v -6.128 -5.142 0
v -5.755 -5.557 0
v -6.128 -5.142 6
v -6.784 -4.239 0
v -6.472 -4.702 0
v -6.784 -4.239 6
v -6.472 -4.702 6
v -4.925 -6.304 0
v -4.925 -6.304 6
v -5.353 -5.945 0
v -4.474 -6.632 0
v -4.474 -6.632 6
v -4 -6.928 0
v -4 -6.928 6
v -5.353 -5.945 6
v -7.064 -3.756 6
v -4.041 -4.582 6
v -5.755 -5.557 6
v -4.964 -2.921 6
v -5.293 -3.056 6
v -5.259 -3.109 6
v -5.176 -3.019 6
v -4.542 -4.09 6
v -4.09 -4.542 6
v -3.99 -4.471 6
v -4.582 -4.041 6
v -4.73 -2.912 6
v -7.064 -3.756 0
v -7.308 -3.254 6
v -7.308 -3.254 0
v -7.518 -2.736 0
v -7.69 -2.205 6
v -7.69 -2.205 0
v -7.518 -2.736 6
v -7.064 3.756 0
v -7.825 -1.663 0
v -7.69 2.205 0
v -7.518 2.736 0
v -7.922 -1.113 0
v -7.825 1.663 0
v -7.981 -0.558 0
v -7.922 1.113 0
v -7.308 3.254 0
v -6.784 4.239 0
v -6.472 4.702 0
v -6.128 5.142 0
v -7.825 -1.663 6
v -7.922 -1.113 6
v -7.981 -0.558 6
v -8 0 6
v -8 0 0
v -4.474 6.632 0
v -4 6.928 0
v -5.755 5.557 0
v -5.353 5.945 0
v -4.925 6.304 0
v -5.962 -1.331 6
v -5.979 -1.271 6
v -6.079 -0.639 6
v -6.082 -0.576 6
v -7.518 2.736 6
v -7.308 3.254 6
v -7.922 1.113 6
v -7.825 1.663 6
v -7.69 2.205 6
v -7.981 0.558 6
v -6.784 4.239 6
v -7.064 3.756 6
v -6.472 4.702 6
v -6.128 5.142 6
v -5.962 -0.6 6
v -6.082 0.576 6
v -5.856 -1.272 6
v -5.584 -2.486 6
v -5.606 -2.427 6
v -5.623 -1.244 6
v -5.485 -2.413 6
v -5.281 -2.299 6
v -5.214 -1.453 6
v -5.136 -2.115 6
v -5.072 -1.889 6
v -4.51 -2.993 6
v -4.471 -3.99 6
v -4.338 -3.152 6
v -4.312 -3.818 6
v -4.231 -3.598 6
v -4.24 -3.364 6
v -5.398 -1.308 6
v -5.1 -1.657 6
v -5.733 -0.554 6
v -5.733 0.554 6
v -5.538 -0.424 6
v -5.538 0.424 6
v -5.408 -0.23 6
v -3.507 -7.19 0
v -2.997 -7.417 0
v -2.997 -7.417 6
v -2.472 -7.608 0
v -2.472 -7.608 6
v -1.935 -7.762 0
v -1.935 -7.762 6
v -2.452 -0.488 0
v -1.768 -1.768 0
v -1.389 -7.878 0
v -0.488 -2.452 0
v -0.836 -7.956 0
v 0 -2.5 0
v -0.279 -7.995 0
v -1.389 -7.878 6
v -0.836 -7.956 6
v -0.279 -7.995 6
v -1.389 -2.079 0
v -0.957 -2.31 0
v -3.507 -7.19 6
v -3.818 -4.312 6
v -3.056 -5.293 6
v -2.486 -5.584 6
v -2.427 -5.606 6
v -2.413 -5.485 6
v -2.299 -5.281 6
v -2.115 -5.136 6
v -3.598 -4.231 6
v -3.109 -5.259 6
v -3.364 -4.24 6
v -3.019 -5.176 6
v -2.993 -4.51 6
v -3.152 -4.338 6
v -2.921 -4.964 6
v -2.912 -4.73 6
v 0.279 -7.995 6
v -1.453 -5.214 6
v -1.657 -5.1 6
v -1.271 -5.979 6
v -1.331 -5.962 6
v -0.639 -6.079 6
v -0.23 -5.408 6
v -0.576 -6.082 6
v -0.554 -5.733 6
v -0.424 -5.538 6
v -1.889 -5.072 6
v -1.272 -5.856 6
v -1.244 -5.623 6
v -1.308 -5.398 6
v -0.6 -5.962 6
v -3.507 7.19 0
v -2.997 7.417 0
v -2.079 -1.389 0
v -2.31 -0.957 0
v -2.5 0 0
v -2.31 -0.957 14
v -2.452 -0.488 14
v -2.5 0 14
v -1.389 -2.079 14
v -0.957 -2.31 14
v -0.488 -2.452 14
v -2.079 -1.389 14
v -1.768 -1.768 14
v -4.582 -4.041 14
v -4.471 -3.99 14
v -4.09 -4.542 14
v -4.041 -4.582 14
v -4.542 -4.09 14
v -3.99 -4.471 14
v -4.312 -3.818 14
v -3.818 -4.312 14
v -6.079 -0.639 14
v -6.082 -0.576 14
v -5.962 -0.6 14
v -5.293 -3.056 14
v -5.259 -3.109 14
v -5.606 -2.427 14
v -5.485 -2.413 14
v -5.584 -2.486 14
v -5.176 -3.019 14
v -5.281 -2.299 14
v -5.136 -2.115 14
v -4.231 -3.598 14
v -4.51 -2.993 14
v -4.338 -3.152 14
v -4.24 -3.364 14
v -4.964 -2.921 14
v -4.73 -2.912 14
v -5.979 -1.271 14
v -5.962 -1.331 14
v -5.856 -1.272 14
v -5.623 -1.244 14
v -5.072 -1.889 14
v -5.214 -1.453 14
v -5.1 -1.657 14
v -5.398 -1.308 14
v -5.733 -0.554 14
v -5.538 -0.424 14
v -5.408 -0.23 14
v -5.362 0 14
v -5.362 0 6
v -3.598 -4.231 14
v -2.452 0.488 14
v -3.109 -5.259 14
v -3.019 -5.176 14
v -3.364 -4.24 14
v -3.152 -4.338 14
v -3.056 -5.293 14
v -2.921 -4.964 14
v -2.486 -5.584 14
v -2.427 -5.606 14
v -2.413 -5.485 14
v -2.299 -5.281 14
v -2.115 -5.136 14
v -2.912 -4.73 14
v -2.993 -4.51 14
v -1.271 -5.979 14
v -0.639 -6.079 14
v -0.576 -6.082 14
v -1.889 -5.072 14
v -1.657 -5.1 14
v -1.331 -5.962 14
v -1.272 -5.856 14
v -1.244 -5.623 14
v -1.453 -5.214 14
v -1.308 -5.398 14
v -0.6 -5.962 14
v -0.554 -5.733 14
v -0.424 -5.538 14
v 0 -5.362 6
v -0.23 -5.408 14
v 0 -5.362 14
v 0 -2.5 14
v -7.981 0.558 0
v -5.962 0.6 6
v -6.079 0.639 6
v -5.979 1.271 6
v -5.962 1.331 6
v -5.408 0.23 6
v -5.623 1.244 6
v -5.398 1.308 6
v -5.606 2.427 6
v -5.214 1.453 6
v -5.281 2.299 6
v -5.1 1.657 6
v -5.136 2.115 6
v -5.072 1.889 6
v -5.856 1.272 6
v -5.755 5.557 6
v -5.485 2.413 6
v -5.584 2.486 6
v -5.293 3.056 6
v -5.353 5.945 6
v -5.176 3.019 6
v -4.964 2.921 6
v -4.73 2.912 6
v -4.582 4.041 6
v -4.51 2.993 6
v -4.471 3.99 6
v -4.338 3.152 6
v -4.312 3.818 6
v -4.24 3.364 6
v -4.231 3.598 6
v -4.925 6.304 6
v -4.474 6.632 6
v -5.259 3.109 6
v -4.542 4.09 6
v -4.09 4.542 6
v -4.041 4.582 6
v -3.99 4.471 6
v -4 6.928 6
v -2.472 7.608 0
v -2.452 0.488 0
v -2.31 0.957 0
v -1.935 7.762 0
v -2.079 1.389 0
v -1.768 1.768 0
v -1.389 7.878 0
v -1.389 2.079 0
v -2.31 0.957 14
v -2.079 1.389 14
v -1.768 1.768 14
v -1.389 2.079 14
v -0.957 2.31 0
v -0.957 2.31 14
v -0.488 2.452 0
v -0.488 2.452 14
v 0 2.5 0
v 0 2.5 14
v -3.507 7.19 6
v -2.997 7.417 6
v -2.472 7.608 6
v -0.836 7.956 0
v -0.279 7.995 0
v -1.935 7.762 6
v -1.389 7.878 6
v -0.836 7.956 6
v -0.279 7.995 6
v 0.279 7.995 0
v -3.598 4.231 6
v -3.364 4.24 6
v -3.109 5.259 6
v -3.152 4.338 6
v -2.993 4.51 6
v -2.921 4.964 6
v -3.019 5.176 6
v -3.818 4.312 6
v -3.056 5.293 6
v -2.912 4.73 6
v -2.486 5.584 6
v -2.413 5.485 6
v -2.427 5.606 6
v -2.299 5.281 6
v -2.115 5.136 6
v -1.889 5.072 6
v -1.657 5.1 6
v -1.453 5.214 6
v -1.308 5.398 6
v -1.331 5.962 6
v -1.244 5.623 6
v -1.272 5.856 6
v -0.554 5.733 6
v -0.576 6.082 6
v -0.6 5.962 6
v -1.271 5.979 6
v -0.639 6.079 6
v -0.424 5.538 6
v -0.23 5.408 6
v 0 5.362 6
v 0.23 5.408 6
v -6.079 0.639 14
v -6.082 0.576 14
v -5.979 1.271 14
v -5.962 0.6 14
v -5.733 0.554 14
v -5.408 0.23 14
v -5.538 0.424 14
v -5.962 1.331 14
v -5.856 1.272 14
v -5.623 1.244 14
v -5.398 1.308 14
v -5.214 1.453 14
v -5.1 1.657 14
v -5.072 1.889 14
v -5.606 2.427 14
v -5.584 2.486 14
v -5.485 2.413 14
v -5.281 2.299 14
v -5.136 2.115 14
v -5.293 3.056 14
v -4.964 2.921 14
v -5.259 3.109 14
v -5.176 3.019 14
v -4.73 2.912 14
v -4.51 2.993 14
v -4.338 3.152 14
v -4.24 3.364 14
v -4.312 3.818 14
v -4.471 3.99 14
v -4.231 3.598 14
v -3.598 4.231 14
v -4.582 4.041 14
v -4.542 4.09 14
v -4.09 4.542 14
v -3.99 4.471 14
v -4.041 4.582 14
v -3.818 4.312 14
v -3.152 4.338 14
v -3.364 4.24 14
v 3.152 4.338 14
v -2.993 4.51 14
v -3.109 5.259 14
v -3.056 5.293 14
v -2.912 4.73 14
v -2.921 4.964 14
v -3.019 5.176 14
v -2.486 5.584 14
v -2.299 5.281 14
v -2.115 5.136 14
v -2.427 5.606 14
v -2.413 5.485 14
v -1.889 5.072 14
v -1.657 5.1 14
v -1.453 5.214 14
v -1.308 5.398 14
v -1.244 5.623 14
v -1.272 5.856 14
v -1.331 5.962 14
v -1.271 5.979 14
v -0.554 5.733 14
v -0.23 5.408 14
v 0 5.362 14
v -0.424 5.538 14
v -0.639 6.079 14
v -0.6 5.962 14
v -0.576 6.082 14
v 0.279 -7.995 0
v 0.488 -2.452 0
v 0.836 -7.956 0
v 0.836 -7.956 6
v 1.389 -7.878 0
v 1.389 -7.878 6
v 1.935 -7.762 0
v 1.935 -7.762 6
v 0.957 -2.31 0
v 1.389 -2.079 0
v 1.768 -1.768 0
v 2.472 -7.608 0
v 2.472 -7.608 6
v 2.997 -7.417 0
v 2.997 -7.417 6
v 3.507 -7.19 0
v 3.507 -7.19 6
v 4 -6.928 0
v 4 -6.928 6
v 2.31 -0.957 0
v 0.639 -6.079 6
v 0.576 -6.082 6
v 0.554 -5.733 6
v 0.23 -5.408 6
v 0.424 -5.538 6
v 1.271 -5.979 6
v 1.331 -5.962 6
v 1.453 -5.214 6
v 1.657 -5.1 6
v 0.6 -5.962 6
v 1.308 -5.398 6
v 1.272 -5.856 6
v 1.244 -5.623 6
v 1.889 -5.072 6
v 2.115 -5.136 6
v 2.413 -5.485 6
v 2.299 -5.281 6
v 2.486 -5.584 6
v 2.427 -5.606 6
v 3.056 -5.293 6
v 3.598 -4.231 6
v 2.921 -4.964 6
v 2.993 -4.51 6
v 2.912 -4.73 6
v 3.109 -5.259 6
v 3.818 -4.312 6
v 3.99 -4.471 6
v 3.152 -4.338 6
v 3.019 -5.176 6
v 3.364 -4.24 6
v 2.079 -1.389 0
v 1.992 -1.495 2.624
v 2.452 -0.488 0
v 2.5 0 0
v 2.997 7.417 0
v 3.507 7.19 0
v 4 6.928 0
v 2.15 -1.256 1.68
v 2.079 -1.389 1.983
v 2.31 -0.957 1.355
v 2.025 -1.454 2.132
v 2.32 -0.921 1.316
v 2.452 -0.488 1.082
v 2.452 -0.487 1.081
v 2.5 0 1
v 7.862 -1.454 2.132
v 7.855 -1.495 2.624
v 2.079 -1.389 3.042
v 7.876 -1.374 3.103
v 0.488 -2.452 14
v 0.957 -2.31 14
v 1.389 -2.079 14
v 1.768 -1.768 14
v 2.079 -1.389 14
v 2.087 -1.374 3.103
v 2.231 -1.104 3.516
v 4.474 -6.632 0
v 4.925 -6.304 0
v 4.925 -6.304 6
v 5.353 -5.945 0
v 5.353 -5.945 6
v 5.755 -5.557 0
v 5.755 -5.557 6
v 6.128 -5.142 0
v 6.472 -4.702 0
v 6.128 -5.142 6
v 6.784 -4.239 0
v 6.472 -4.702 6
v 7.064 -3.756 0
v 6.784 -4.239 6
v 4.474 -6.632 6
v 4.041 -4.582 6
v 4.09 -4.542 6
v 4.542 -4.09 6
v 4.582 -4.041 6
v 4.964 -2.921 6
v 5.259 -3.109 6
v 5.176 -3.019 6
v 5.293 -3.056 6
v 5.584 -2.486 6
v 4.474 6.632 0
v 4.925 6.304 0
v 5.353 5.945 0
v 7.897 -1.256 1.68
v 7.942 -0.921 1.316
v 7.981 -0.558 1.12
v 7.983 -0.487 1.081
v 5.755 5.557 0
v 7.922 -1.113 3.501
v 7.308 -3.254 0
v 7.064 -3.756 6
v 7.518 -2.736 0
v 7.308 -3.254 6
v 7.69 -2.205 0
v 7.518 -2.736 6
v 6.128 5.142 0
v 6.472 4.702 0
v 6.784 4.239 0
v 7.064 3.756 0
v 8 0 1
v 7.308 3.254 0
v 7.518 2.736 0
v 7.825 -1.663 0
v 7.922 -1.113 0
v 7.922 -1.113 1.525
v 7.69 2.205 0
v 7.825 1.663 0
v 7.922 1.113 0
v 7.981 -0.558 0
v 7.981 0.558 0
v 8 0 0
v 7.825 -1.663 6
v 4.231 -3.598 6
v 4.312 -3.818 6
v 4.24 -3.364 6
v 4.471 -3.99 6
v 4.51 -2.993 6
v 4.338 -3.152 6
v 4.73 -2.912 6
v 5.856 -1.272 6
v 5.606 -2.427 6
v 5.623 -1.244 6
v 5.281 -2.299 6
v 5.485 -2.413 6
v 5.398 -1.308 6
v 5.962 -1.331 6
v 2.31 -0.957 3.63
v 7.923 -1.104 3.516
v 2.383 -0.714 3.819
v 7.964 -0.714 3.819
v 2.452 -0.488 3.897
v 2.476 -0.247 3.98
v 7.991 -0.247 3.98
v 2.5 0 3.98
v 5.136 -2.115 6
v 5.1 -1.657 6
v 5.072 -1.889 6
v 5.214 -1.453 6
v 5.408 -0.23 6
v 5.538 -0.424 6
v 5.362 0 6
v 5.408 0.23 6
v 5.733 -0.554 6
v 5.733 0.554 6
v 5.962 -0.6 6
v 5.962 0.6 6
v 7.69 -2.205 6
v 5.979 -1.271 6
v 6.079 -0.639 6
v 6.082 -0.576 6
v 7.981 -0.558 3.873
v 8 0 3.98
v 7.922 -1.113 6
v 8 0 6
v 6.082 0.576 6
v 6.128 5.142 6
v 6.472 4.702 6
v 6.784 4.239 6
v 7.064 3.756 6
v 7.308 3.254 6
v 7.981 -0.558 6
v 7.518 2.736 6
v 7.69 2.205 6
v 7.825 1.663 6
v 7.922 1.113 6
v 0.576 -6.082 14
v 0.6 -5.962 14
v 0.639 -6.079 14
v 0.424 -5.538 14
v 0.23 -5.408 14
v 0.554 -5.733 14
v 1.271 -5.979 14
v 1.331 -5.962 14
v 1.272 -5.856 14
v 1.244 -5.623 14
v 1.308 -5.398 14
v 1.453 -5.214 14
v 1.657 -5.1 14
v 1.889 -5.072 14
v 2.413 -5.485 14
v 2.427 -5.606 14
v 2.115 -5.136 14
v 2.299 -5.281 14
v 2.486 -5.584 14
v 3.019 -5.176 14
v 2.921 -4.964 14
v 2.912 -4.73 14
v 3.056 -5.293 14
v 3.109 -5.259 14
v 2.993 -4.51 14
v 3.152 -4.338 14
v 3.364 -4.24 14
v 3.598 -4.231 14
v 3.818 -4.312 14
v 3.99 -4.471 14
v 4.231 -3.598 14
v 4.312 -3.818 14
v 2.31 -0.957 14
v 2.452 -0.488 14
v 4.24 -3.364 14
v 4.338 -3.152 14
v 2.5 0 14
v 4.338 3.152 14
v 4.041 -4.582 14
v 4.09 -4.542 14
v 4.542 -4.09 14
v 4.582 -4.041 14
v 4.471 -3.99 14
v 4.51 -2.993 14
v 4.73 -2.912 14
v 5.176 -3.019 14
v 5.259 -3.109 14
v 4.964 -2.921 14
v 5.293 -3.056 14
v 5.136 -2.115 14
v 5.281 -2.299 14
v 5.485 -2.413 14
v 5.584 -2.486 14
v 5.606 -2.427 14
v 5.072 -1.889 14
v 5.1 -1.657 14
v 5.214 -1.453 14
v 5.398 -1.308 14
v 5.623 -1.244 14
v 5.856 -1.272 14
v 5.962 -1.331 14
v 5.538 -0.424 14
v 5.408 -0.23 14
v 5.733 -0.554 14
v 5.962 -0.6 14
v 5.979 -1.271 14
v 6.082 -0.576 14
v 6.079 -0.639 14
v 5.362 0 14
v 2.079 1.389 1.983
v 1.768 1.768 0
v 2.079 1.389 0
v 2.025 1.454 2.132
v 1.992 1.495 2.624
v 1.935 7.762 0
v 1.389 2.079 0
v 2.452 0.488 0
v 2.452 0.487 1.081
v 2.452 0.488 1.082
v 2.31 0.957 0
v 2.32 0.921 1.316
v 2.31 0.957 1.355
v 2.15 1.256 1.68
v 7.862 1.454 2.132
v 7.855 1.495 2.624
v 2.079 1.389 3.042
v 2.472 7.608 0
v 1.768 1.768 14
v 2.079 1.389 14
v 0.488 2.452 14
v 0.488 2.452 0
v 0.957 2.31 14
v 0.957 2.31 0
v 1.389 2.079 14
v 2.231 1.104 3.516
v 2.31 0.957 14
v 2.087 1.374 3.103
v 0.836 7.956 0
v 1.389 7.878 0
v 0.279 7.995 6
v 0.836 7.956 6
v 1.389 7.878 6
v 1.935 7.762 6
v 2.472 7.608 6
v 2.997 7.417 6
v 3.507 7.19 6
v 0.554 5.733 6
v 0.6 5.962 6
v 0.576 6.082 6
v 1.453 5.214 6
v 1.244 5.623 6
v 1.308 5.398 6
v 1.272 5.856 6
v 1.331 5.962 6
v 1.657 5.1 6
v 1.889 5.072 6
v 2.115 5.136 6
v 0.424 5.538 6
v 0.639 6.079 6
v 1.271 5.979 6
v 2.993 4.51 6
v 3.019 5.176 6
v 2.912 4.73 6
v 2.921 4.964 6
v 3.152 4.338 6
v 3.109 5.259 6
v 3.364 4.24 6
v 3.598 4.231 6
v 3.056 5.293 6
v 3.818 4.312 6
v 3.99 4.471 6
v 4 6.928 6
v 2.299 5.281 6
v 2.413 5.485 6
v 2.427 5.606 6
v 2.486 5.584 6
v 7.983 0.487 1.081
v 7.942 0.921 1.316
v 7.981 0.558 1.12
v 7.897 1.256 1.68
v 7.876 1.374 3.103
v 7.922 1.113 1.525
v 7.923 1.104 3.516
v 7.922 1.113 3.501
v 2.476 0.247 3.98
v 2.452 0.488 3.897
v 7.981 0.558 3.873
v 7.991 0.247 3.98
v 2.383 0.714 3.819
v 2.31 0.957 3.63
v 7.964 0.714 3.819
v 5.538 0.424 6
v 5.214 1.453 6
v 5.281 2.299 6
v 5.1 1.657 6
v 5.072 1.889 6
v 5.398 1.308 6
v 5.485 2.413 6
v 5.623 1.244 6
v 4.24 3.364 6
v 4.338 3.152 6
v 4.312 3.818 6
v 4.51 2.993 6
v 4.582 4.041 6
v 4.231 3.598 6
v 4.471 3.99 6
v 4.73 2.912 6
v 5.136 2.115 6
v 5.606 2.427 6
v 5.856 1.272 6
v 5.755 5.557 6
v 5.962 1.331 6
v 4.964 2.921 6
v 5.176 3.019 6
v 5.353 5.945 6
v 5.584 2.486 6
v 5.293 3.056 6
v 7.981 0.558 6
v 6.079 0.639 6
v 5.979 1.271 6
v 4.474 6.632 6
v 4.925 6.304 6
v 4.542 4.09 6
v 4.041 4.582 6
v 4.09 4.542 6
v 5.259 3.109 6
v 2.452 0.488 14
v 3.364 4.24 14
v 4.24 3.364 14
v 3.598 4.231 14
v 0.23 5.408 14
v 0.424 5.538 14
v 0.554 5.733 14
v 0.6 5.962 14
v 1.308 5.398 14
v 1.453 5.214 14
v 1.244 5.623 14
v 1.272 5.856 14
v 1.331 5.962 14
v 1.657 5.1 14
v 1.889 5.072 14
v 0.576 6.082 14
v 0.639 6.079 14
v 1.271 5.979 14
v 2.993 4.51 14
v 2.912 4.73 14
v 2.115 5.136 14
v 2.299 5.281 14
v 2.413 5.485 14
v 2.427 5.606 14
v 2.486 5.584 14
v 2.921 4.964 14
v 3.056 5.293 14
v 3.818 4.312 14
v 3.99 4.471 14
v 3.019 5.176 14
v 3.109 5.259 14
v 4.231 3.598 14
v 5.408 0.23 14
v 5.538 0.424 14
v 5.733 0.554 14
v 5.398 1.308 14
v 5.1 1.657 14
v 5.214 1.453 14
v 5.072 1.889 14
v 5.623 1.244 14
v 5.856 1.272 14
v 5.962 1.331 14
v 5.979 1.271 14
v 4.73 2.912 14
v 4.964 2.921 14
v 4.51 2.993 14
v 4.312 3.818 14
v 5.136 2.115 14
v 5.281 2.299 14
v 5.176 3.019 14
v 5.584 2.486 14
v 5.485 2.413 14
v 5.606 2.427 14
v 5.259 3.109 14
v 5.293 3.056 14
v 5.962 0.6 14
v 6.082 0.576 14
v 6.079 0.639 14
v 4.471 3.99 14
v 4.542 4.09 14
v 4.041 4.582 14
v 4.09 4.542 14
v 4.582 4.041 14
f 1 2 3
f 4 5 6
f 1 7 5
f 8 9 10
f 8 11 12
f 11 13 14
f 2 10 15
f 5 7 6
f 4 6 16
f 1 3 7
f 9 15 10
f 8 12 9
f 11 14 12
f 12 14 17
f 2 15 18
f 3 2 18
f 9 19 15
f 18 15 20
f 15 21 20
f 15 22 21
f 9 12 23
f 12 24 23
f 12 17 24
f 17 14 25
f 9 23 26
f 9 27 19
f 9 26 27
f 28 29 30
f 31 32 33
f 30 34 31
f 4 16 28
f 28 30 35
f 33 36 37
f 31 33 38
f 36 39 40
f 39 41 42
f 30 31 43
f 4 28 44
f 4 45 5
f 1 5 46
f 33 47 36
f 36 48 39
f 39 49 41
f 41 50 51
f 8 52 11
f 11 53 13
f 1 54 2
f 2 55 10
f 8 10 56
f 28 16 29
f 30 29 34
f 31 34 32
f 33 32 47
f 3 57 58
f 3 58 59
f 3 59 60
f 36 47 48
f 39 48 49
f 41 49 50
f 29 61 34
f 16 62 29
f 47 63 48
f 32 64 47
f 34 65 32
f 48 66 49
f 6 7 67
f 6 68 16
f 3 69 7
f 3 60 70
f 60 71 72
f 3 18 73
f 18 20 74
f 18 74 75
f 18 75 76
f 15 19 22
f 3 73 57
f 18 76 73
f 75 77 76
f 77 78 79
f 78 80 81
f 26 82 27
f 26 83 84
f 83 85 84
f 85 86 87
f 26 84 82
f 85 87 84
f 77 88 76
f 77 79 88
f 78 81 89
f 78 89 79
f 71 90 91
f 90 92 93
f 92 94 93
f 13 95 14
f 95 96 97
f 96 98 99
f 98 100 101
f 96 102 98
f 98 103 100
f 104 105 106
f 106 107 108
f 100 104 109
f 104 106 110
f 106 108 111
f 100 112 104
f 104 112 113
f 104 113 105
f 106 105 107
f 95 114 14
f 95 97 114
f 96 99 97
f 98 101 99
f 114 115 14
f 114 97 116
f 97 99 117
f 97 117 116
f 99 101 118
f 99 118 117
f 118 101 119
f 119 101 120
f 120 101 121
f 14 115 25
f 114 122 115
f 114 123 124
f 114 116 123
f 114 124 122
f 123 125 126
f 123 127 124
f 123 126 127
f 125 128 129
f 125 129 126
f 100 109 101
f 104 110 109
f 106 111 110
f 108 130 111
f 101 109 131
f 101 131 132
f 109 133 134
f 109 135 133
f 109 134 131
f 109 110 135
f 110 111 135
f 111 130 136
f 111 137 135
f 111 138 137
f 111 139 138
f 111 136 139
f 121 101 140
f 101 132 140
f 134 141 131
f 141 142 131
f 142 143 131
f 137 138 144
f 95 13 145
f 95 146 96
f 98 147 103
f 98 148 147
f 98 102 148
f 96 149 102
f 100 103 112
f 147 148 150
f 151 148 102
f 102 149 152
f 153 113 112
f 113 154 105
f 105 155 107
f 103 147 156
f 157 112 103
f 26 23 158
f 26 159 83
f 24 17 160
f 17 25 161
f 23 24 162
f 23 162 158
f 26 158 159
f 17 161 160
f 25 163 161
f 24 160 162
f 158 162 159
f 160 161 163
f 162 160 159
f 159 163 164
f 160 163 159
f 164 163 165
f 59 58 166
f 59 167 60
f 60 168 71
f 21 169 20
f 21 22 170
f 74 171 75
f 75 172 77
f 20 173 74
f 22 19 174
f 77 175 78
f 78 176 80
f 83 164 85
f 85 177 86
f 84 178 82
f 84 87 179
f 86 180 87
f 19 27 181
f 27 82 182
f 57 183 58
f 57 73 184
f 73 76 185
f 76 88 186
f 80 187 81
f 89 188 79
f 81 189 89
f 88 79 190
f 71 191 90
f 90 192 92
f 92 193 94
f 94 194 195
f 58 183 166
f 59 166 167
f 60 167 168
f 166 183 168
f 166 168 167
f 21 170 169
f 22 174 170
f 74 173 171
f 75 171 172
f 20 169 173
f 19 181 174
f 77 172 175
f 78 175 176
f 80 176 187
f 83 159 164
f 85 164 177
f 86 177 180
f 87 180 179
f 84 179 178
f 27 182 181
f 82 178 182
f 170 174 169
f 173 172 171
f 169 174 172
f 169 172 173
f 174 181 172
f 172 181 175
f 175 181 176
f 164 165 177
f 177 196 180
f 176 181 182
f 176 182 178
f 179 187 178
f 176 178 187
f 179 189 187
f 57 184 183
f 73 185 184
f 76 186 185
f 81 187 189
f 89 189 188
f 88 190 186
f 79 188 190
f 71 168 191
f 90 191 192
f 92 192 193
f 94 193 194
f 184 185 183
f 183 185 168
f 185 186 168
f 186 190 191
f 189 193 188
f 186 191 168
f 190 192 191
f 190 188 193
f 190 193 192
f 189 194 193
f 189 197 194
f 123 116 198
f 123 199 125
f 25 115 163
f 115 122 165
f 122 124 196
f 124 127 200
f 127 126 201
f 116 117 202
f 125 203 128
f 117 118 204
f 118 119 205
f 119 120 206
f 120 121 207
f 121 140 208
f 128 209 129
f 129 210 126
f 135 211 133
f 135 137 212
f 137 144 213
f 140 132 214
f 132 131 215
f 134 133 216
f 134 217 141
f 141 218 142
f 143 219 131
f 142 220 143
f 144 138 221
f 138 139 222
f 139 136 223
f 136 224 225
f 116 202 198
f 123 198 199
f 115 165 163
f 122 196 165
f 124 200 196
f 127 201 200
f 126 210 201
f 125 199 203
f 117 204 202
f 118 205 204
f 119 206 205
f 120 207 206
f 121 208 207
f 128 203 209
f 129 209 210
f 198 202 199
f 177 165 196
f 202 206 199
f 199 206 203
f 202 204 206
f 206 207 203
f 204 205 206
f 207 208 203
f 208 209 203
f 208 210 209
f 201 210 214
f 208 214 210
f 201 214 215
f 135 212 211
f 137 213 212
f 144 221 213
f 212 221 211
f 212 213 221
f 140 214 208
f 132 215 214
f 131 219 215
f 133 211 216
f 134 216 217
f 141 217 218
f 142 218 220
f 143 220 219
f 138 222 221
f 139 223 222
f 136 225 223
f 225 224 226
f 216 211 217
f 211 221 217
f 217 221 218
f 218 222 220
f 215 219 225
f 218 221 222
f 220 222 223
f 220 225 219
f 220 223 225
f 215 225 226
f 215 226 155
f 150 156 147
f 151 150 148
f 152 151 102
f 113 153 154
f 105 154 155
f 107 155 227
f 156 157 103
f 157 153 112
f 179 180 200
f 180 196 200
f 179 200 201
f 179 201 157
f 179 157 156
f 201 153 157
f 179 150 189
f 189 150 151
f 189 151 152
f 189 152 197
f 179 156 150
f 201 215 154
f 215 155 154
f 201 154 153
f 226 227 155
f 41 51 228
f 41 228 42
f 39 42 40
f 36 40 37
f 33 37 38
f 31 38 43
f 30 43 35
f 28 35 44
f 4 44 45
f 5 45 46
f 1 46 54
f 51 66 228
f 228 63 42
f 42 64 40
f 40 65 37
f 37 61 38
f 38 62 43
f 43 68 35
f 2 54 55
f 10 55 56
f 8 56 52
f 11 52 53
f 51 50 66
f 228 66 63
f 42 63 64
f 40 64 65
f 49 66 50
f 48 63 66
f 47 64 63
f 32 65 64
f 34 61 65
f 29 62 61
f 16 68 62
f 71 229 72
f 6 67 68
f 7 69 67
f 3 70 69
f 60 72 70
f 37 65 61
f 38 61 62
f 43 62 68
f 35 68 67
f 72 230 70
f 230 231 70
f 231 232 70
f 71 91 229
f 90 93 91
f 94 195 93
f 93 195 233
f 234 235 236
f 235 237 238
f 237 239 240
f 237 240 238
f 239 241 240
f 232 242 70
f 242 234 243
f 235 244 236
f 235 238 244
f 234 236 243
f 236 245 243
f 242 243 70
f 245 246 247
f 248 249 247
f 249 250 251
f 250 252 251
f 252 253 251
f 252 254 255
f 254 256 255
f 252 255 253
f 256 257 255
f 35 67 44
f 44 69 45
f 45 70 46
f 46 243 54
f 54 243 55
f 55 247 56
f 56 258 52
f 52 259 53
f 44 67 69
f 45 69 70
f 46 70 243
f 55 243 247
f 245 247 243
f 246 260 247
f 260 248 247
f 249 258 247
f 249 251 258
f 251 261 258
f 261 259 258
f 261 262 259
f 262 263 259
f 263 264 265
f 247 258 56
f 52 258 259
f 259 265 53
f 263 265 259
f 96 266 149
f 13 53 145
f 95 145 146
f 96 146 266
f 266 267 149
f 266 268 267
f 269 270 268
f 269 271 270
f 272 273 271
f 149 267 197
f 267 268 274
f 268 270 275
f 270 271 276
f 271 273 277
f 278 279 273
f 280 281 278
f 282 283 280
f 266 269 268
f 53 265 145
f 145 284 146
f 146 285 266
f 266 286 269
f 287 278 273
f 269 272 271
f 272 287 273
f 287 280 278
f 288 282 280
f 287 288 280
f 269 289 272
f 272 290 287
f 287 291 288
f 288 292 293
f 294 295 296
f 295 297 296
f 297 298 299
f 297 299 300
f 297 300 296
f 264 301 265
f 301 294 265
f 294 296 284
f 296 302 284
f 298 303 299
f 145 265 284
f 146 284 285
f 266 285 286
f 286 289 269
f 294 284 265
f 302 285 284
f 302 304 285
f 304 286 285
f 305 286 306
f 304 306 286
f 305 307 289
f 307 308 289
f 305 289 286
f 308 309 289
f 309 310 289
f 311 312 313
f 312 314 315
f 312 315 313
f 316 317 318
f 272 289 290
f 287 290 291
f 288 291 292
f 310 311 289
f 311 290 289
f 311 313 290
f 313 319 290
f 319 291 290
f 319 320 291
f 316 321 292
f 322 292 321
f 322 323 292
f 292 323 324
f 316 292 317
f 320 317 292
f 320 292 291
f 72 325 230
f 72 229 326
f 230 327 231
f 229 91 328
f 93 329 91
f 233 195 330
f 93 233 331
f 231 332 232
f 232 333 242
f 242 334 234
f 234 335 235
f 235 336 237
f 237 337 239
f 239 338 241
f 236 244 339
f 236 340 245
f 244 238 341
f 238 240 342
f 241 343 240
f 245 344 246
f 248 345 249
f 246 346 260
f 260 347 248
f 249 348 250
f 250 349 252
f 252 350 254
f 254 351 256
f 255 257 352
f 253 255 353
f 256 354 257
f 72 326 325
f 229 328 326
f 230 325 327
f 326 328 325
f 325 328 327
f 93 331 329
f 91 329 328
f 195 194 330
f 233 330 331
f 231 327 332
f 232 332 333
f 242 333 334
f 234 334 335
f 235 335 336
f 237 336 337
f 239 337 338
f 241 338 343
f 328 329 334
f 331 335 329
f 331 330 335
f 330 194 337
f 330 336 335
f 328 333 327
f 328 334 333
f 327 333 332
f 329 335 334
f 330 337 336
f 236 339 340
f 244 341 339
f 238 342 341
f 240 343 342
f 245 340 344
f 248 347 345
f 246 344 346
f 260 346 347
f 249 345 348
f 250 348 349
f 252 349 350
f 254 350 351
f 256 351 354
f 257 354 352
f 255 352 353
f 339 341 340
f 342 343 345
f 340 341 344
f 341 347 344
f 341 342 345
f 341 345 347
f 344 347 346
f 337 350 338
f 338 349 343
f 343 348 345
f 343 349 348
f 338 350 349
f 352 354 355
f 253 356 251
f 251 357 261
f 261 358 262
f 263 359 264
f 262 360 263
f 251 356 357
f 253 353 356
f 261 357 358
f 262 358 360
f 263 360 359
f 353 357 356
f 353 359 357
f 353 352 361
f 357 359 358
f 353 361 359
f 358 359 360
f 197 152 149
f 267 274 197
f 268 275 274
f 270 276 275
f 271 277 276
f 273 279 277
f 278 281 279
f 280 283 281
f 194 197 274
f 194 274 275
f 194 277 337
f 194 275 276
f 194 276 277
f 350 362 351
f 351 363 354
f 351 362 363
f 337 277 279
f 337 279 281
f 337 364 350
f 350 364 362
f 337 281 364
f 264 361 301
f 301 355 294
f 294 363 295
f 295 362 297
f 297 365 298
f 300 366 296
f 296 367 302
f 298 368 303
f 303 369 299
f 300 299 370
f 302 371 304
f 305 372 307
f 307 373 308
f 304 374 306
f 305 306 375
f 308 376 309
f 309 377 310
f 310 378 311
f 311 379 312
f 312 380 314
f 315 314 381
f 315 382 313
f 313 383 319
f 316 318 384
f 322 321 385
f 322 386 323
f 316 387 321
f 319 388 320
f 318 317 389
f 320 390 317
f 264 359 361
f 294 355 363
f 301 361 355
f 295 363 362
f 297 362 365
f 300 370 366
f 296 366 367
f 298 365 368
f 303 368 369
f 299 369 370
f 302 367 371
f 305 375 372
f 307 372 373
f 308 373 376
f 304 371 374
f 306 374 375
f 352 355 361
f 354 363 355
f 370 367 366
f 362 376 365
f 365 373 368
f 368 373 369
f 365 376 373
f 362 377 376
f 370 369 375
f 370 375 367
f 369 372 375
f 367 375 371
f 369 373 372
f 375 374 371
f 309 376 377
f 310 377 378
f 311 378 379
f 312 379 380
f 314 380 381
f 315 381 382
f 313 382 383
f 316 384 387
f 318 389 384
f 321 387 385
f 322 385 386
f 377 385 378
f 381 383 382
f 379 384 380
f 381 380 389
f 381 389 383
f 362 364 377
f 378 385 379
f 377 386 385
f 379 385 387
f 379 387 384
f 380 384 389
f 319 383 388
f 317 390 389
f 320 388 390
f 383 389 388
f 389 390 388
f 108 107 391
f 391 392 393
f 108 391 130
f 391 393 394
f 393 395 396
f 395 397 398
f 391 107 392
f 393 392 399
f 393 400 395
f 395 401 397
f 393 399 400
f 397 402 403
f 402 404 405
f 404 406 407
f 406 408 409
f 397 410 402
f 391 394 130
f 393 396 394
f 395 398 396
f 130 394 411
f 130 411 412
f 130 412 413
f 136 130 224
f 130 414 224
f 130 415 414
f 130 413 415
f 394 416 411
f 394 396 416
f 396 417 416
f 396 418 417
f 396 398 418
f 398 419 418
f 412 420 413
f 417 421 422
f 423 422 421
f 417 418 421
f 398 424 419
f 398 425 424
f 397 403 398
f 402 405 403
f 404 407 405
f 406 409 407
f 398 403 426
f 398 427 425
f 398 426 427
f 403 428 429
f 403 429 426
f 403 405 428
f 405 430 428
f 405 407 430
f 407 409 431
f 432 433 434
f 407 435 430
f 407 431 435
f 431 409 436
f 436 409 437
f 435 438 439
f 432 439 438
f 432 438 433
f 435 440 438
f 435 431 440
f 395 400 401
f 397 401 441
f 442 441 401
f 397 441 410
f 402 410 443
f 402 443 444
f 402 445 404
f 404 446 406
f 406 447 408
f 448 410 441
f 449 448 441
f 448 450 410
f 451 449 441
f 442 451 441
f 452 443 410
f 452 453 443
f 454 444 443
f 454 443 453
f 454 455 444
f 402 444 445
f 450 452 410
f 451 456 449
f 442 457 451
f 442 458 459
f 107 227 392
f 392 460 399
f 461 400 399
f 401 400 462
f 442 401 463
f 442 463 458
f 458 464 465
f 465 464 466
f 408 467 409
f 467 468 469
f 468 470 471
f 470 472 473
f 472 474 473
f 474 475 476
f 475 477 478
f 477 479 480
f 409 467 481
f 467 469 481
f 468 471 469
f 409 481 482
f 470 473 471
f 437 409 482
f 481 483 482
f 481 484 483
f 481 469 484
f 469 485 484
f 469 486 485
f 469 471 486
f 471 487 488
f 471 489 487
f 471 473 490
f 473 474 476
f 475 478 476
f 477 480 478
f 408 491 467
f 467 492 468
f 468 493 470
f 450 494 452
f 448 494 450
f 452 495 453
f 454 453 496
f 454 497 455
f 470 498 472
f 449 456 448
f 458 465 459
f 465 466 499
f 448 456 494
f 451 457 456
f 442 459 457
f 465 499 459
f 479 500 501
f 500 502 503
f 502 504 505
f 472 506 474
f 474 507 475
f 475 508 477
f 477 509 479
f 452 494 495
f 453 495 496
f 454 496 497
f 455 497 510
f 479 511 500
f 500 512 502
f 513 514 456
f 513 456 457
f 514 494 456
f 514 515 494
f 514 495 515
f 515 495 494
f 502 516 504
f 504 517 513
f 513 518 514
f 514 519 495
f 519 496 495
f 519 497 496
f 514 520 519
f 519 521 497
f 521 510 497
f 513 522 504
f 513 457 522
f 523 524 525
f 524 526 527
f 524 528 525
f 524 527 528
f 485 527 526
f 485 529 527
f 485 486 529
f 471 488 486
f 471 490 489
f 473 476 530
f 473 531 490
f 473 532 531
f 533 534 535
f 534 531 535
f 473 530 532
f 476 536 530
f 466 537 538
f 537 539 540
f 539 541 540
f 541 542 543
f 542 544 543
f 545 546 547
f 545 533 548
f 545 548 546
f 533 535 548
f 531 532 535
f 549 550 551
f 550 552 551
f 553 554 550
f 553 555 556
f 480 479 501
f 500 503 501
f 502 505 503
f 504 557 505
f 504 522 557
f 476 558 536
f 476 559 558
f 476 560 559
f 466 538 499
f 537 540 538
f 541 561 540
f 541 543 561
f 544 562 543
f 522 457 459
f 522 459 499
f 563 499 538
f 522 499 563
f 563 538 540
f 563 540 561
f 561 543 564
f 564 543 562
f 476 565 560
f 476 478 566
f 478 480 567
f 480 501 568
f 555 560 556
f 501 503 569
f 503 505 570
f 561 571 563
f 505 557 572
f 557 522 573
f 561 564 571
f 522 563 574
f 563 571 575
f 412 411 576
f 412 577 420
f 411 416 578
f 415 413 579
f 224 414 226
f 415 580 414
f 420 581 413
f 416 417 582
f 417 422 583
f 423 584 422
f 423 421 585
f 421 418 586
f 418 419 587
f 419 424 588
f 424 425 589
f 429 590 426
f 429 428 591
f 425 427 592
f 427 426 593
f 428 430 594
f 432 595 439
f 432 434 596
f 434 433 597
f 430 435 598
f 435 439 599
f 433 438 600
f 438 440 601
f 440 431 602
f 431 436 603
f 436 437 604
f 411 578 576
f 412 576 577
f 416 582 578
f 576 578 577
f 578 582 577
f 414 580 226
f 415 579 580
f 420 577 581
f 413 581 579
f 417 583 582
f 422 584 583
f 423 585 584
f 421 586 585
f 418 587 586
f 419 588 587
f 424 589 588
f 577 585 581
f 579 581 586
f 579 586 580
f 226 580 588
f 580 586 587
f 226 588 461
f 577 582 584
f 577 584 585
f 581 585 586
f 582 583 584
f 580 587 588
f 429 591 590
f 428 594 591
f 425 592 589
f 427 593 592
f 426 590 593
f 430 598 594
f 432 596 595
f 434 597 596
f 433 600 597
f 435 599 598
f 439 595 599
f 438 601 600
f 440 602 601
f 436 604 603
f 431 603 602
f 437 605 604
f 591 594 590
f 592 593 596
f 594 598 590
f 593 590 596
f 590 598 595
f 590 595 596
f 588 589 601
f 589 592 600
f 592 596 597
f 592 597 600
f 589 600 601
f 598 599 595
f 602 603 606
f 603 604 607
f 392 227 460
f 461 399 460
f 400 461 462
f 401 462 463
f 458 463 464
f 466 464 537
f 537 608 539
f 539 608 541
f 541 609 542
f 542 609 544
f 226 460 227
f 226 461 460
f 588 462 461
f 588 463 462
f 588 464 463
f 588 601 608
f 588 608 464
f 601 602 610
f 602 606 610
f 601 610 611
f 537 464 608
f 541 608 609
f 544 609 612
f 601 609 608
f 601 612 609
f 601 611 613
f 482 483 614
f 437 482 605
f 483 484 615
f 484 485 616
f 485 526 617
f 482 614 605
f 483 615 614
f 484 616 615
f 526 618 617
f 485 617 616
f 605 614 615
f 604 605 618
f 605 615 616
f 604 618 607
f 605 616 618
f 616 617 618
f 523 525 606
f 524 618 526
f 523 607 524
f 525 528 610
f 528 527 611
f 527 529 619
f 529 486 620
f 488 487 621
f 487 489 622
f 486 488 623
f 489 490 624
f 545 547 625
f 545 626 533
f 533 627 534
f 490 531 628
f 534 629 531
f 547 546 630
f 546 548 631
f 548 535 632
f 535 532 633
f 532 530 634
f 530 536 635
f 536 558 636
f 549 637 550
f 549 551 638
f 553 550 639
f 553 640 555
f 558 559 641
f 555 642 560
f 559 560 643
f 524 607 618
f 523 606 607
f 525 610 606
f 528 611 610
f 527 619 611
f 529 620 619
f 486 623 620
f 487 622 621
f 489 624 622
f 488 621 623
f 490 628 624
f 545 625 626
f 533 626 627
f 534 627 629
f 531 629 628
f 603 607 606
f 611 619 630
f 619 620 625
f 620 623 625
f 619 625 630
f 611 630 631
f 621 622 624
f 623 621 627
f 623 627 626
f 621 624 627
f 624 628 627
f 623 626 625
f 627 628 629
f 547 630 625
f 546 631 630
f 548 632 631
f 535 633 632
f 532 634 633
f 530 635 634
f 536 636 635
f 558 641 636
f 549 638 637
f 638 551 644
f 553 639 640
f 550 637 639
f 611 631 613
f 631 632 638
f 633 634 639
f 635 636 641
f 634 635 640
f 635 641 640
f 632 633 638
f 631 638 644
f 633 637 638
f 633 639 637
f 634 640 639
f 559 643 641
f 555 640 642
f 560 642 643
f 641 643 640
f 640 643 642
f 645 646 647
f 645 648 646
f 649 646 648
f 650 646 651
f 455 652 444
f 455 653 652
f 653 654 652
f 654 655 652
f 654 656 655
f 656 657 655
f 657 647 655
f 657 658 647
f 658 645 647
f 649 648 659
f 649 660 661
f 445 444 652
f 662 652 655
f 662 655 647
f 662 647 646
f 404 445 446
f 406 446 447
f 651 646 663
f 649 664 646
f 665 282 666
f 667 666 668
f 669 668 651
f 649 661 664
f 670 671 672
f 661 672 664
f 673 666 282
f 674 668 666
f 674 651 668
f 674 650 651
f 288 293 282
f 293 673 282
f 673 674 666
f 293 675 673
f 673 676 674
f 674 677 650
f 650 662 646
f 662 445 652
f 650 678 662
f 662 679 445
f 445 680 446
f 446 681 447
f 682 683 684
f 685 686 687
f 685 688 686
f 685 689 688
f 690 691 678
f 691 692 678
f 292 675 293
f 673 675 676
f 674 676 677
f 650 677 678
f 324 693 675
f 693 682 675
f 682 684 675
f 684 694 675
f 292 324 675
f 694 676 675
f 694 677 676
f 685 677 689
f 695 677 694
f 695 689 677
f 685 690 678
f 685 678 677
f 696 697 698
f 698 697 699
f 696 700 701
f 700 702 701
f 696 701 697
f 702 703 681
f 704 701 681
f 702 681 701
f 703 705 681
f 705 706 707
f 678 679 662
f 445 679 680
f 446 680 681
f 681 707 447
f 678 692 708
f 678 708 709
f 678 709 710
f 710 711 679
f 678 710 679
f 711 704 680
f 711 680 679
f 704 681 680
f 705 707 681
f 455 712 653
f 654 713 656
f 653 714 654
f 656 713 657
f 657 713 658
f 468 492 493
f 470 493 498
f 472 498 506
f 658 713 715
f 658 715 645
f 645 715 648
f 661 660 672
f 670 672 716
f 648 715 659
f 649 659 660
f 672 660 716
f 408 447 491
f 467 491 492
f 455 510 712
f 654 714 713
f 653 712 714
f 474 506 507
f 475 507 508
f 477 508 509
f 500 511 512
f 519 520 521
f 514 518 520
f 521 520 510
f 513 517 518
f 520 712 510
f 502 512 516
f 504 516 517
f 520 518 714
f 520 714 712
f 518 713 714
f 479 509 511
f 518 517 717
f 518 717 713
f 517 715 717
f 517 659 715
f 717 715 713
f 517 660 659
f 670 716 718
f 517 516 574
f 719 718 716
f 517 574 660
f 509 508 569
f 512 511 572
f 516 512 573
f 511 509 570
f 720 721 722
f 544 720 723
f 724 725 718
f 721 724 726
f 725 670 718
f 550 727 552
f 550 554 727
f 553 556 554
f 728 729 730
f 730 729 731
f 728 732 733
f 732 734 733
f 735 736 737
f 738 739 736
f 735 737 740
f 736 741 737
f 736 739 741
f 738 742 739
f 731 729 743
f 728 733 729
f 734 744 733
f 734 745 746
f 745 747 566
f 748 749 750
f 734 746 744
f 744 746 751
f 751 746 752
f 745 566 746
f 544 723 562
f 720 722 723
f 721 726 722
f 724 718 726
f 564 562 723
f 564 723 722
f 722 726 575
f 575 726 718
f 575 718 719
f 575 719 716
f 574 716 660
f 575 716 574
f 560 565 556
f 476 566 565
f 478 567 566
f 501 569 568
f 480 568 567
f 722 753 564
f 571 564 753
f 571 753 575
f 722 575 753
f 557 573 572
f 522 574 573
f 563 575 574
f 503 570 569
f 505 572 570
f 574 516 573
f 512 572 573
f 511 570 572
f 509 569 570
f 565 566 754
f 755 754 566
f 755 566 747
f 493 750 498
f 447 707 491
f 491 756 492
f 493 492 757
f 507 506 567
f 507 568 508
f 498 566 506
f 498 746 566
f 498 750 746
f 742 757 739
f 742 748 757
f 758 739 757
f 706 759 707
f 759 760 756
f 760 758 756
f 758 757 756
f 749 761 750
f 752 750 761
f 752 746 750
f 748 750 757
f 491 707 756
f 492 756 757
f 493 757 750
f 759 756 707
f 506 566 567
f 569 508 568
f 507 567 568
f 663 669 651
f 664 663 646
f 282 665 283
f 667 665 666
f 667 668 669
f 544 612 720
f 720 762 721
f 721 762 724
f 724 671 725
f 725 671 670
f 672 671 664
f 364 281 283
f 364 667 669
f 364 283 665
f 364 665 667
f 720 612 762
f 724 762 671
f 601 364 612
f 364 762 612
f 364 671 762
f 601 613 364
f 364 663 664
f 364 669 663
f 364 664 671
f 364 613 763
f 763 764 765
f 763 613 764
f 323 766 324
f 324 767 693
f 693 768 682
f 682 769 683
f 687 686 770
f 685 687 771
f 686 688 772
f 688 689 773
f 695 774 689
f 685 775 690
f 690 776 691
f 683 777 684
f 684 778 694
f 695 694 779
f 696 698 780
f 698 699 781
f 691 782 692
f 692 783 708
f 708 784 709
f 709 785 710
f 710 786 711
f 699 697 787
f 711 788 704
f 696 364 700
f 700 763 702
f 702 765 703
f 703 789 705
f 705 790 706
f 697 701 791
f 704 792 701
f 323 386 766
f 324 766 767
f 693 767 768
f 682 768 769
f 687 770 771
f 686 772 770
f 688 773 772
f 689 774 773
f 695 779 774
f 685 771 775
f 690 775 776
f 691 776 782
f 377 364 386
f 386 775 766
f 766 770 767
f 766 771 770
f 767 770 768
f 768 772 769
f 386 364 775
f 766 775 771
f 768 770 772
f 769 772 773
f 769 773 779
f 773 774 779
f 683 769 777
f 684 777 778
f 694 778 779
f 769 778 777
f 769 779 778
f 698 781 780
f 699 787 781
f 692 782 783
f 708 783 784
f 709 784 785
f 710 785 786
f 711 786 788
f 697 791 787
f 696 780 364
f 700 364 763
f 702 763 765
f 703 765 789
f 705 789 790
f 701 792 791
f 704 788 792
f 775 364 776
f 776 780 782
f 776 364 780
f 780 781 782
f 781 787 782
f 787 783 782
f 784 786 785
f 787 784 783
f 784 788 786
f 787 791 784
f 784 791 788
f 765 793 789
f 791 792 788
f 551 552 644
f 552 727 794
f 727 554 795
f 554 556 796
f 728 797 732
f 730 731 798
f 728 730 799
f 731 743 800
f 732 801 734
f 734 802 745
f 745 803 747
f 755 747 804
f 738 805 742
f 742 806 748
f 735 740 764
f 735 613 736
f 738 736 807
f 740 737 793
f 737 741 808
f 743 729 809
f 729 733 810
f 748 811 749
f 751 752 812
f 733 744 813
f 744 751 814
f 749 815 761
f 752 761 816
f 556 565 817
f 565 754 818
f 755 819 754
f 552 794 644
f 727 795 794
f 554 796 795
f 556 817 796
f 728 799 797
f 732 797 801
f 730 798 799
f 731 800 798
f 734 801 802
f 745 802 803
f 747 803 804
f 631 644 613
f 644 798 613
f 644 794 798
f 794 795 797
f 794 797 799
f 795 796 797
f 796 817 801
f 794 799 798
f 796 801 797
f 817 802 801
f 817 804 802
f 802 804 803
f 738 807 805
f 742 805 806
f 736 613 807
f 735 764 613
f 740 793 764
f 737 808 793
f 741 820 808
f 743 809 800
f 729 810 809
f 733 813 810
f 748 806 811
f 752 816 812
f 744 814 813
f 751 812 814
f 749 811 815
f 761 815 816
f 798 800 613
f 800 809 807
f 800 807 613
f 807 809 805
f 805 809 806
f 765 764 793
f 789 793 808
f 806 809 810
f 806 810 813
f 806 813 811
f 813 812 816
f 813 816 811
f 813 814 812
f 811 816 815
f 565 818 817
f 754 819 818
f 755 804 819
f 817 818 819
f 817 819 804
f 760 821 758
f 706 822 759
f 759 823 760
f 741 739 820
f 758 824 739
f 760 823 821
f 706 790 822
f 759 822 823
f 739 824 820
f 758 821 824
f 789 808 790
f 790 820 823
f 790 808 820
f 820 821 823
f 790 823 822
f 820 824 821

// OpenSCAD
// file: ../lib/lib.scad
// Shared helpers. Include AFTER params.scad (needs TOL, M3_* etc.).
$fa = 4; $fs = 0.5;

module rrect(size, r) {            // 2D rounded rectangle, centred
    r2 = min(r, min(size[0], size[1]) / 2 - 0.001);
    offset(r = r2) square([size[0] - 2 * r2, size[1] - 2 * r2], center = true);
}
module rbox(size, r, center_xy = true) {   // box with rounded vertical edges
    translate(center_xy ? [0, 0, 0] : [size[0] / 2, size[1] / 2, 0])
        linear_extrude(size[2]) rrect([size[0], size[1]], r);
}
module rbox_at(x0, x1, y0, y1, z0, z1, r = 0.01) {
    translate([(x0 + x1) / 2, (y0 + y1) / 2, z0]) rbox([x1 - x0, y1 - y0, z1 - z0], r);
}
module box_at(x0, x1, y0, y1, z0, z1) { translate([x0, y0, z0]) cube([x1 - x0, y1 - y0, z1 - z0]); }

module ring(ro, ri, h) { difference() { cylinder(r = ro, h = h); translate([0, 0, -1]) cylinder(r = ri, h = h + 2); } }
module ring_sector(ro, ri, h, a0, a1) {
    intersection() {
        ring(ro, ri, h);
        linear_extrude(h) polygon(concat([[0, 0]], [for (a = [a0 : (a1 - a0) / 24 : a1]) 2 * ro * [cos(a), sin(a)]]));
    }
}
// teardrop hole along an axis lying horizontal (axis = Y after rotation), printable w/o support
module teardrop2d(d) { union() { circle(d = d); rotate(45) square(d / 2); } }
// vertical heat-set insert hole, opening at z=0 going +z (depth l)
module insert_hole(l = M3_INSERT_L) { translate([0, 0, -EPS]) cylinder(d = M3_INSERT_D, h = l + EPS); }
module m3_clear(l) { translate([0, 0, -EPS]) cylinder(d = M3_CLEAR, h = l + 2 * EPS); }
module m3_csk(l) {  // countersunk clearance from z=0 upward, head at z=0 side
    translate([0, 0, -EPS]) { cylinder(d = M3_CLEAR, h = l + 2 * EPS); cylinder(d1 = 6.4, d2 = M3_CLEAR, h = 1.7); }
}
module card2d() { rrect([CARD_L, CARD_W], CARD_R); }
module card_at(cy, z) { translate([0, cy, z]) linear_extrude(CARD_T) card2d(); }

// ---- gears ----
function _inv(a) = tan(a) - a * PI_ / 180;           // involute function, a in deg
function _invpt(rb, r, ang0, s) = let(al = acos(rb / r), th = ang0 - s * (_inv(al) * 180 / PI_)) [r * cos(th), r * sin(th)];
module involute_gear2d(m, z, pa = 20, clearance = 0.05) {
    rp = m * z / 2; rb = rp * cos(pa); ra = rp + m - clearance; rf = rp - 1.25 * m;
    half = 90 / z + _inv(pa) * 180 / PI_;            // tooth half-angle at base (deg)
    n = 8;
    rs = [for (i = [0 : n]) max(rb, rf) + (ra - max(rb, rf)) * i / n];
    union() {
        circle(r = rf, $fn = z * 4);
        for (k = [0 : z - 1]) rotate(k * 360 / z) polygon(concat(
            [[rf * cos(-half), rf * sin(-half)]],
            [for (r = rs) let(p = _invpt(rb, r, half, 1)) [p[0], -p[1]]],
            [for (i = [n : -1 : 0]) _invpt(rb, rs[i], half, 1)],
            [[rf * cos(half), rf * sin(half)]]));
    }
}
// straight gear rack (2D in XY: teeth along +x, pointing -y, pitch line at y=0)
module gear_rack2d(m, len, back = 3) {
    p = PI_ * m; ad = m; de = 1.25 * m; t = tan(20);
    n = ceil(len / p) + 1;
    intersection() {
        union() {
            translate([0, de]) square([len, back]);
            for (i = [0 : n]) translate([i * p - p / 4, 0]) polygon([
                [-(p / 4 + de * t), de + 0.01], [p / 4 + de * t + 0.01, de + 0.01],
                [p / 4 - ad * t, -ad], [-(p / 4 - ad * t), -ad] ]);
        }
        translate([0, -ad - 1]) square([len, ad + de + back + 2]);
    }
}
// GT2 belt-tooth profile ring (teeth outward), 2D
module gt2_ring2d(n, r_land, ri) {
    union() {
        difference() { circle(r = r_land + 0.01, $fn = n * 2); circle(r = ri, $fn = n * 2); }
        for (k = [0 : n - 1]) rotate(k * 360 / n)
            translate([r_land, 0]) hull() { translate([-0.2, 0]) square([0.2, 1.0], center = true); translate([0.25, 0]) circle(r = 0.5, $fn = 12); }
    }
}
// main file
// Vendor model: GT2 20T pulley, 5 mm bore, for 10 mm belt, top flange removed (meshes the printed ring). Local: hub z 0..5, flange 5..6, teeth 6..14.
include <../params.scad>
include <../lib/lib.scad>
module vendor_gt2_pulley_20t() color([0.75,0.75,0.78]) difference() {
    union() {
        cylinder(d = PUL_HUB_D, h = PUL_HUB_H);
        translate([0, 0, PUL_HUB_H]) cylinder(d = PUL_HUB_D, h = PUL_FL_T);
        translate([0, 0, PUL_HUB_H + PUL_FL_T]) linear_extrude(PUL_TEETH_H) difference() {
            circle(r = PUL_PR - 0.254, $fn = 60);
            for (k = [0 : 19]) rotate(k * 18) translate([PUL_PR - 0.254 - 0.15, 0]) circle(r = 0.6, $fn = 16);
        }
    }
    translate([0, 0, -1]) cylinder(d = 5, h = 20);
    translate([0, 0, PUL_HUB_H / 2]) rotate([0, 90, 0]) cylinder(d = 3, h = 10);
}

vendor_gt2_pulley_20t();
